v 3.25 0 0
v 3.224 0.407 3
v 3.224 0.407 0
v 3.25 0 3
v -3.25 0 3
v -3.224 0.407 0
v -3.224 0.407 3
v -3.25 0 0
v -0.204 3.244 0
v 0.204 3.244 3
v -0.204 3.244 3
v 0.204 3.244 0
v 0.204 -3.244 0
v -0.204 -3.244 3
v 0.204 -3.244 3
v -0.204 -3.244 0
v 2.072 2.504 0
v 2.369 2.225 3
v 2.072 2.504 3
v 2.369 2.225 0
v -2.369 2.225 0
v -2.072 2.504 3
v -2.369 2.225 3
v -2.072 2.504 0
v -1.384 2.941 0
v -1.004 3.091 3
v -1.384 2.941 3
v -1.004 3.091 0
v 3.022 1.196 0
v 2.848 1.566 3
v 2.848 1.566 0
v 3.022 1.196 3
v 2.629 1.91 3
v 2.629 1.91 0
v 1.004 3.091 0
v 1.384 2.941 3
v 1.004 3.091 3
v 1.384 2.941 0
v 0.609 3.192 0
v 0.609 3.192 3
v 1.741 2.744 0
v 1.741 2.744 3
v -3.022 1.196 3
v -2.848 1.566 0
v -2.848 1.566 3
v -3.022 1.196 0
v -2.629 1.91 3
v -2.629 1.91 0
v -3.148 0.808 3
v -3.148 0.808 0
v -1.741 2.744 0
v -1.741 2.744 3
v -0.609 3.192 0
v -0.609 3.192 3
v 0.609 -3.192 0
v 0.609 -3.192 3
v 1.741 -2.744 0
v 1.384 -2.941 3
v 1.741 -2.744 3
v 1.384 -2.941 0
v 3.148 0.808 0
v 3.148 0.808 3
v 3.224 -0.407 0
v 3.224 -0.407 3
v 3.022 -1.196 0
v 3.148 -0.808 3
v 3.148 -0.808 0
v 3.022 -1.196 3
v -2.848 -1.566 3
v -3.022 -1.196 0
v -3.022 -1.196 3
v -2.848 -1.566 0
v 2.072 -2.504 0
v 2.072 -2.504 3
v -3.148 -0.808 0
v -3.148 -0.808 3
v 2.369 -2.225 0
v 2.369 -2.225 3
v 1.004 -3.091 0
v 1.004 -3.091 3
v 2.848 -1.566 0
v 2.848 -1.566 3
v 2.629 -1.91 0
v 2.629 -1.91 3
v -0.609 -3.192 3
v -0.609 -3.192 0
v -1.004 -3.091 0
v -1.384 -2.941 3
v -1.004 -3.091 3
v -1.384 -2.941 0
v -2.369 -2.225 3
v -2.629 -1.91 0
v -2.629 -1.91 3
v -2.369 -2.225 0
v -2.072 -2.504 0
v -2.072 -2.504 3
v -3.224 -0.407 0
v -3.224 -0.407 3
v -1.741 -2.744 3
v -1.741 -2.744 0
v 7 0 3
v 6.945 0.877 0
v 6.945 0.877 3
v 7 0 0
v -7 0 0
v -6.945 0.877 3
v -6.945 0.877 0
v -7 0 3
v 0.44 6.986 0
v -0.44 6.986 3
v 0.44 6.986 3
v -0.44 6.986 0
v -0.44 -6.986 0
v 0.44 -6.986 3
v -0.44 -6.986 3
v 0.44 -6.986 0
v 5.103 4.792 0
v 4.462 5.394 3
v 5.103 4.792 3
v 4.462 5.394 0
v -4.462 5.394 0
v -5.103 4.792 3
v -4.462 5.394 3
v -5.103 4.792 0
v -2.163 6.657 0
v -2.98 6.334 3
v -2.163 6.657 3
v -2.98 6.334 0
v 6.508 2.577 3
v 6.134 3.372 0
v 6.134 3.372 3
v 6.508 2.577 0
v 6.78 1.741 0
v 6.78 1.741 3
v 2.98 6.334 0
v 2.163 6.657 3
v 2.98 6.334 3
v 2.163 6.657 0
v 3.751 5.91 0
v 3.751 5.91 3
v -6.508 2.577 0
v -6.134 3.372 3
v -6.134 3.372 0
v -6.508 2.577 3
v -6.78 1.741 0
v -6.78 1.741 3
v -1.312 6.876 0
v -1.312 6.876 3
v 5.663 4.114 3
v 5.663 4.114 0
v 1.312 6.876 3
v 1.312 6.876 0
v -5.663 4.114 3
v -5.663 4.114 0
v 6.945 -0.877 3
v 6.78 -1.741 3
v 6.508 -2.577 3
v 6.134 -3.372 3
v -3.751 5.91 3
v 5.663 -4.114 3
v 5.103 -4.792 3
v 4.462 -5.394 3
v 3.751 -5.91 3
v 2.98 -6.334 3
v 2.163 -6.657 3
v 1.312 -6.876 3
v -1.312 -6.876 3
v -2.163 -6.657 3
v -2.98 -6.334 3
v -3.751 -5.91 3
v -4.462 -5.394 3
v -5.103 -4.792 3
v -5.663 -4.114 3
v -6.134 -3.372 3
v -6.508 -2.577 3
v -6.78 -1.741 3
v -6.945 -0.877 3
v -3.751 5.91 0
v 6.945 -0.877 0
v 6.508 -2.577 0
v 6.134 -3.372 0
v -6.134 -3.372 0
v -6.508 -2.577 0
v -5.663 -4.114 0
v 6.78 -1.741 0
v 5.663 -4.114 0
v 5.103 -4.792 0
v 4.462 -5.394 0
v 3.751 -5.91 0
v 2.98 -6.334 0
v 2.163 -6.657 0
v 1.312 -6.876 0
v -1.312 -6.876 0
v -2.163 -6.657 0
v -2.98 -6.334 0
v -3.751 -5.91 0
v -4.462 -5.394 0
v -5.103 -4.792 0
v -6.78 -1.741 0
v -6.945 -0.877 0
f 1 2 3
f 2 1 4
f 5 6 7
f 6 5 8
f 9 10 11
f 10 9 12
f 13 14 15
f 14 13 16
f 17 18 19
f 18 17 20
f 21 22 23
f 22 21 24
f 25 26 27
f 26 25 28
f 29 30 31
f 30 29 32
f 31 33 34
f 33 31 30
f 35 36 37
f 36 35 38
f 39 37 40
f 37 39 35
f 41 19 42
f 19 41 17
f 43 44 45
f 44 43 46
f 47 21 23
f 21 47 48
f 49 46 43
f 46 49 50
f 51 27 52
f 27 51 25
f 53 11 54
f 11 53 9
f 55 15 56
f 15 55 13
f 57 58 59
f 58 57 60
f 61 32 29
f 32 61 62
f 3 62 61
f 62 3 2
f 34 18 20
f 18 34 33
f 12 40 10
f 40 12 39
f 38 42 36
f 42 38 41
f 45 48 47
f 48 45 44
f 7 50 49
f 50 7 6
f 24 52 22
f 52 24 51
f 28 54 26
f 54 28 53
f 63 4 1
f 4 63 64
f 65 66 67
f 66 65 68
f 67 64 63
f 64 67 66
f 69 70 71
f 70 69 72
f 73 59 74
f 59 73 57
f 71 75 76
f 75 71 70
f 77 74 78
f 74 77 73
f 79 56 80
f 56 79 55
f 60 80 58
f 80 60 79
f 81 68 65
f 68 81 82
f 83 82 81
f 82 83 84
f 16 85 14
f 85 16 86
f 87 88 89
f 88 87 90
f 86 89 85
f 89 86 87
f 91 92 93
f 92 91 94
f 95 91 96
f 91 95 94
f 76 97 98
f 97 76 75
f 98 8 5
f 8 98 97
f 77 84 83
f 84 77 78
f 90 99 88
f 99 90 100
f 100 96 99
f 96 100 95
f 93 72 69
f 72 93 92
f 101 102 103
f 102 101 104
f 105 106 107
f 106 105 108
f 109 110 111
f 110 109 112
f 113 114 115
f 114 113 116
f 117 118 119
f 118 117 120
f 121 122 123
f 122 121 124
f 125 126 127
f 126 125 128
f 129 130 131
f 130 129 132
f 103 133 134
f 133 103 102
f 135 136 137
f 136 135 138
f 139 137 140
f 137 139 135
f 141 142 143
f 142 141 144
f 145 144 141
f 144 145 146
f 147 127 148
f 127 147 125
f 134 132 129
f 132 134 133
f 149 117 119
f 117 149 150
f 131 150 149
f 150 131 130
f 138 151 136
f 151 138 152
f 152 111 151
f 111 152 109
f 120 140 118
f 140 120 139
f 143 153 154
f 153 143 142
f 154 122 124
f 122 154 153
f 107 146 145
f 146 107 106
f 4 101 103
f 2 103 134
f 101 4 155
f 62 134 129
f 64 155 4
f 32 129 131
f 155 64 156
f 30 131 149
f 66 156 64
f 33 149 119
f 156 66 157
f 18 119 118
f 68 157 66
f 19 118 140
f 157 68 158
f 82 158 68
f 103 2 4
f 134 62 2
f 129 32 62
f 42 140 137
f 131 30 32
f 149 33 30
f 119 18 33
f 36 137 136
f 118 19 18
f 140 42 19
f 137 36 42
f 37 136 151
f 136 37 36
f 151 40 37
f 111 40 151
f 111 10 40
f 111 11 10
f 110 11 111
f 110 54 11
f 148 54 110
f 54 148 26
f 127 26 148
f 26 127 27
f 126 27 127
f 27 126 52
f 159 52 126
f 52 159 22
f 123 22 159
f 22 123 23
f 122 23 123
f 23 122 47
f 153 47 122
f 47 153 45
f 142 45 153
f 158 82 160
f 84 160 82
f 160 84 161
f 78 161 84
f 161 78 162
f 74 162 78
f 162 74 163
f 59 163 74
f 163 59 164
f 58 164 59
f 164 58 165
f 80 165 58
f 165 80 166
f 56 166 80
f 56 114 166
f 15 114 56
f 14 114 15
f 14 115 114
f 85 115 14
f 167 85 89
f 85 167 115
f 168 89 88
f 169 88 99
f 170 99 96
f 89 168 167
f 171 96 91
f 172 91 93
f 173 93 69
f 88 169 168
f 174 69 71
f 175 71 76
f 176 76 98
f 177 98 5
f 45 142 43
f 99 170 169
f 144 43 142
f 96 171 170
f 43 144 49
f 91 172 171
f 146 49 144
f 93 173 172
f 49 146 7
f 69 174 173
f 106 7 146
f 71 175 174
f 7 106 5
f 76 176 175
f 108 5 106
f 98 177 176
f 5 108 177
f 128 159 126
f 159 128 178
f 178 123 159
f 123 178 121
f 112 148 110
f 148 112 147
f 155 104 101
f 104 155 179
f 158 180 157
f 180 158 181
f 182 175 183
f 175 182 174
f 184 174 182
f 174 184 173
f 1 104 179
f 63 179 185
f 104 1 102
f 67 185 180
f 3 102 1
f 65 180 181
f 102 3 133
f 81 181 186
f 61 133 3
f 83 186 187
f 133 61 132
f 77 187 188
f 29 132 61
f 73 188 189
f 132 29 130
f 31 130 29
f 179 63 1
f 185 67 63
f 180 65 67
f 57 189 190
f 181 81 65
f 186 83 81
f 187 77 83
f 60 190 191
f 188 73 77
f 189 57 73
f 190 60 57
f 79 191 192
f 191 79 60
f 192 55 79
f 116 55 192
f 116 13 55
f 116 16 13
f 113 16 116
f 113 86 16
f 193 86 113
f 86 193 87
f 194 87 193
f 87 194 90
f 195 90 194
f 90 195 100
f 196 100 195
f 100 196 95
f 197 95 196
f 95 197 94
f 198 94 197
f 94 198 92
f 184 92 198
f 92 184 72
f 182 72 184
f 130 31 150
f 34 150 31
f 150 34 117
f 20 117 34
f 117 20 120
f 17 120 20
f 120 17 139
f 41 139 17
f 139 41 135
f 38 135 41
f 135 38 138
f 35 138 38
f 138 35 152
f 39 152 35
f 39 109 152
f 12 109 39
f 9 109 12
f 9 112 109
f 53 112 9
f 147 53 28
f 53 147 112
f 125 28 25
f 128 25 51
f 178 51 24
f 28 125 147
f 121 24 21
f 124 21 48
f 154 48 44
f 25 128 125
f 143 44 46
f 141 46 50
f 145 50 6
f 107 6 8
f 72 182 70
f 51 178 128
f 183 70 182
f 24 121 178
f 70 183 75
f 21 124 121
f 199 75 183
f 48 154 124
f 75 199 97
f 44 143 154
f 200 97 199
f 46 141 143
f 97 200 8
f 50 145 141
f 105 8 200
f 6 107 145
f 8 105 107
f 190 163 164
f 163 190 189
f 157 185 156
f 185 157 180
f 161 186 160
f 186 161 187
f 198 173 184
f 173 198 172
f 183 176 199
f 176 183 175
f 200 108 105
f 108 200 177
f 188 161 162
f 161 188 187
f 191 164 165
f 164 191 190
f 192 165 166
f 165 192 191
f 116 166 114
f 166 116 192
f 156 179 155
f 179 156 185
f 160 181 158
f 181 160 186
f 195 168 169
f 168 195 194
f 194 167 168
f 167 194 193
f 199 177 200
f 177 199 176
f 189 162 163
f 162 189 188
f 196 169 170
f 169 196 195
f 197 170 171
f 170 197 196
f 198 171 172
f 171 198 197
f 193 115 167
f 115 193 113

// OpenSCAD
$fn = 50;


difference() {
	union() {
		cylinder(h = 3, r = 7.0000000000);
	}
	union() {
		#translate(v = [0.0000000000, 0.0000000000, -100.0000000000]) {
			cylinder(h = 200, r = 3.2500000000);
		}
		#translate(v = [0.0000000000, 0.0000000000, -100.0000000000]) {
			cylinder(h = 200, r = 3.2500000000);
		}
		#translate(v = [0.0000000000, 0.0000000000, -100.0000000000]) {
			cylinder(h = 200, r = 3.2500000000);
		}
		#translate(v = [0.0000000000, 0.0000000000, -100.0000000000]) {
			cylinder(h = 200, r = 3.2500000000);
		}
		#cylinder(h = 3, r = 2.5000000000);
	}
}
